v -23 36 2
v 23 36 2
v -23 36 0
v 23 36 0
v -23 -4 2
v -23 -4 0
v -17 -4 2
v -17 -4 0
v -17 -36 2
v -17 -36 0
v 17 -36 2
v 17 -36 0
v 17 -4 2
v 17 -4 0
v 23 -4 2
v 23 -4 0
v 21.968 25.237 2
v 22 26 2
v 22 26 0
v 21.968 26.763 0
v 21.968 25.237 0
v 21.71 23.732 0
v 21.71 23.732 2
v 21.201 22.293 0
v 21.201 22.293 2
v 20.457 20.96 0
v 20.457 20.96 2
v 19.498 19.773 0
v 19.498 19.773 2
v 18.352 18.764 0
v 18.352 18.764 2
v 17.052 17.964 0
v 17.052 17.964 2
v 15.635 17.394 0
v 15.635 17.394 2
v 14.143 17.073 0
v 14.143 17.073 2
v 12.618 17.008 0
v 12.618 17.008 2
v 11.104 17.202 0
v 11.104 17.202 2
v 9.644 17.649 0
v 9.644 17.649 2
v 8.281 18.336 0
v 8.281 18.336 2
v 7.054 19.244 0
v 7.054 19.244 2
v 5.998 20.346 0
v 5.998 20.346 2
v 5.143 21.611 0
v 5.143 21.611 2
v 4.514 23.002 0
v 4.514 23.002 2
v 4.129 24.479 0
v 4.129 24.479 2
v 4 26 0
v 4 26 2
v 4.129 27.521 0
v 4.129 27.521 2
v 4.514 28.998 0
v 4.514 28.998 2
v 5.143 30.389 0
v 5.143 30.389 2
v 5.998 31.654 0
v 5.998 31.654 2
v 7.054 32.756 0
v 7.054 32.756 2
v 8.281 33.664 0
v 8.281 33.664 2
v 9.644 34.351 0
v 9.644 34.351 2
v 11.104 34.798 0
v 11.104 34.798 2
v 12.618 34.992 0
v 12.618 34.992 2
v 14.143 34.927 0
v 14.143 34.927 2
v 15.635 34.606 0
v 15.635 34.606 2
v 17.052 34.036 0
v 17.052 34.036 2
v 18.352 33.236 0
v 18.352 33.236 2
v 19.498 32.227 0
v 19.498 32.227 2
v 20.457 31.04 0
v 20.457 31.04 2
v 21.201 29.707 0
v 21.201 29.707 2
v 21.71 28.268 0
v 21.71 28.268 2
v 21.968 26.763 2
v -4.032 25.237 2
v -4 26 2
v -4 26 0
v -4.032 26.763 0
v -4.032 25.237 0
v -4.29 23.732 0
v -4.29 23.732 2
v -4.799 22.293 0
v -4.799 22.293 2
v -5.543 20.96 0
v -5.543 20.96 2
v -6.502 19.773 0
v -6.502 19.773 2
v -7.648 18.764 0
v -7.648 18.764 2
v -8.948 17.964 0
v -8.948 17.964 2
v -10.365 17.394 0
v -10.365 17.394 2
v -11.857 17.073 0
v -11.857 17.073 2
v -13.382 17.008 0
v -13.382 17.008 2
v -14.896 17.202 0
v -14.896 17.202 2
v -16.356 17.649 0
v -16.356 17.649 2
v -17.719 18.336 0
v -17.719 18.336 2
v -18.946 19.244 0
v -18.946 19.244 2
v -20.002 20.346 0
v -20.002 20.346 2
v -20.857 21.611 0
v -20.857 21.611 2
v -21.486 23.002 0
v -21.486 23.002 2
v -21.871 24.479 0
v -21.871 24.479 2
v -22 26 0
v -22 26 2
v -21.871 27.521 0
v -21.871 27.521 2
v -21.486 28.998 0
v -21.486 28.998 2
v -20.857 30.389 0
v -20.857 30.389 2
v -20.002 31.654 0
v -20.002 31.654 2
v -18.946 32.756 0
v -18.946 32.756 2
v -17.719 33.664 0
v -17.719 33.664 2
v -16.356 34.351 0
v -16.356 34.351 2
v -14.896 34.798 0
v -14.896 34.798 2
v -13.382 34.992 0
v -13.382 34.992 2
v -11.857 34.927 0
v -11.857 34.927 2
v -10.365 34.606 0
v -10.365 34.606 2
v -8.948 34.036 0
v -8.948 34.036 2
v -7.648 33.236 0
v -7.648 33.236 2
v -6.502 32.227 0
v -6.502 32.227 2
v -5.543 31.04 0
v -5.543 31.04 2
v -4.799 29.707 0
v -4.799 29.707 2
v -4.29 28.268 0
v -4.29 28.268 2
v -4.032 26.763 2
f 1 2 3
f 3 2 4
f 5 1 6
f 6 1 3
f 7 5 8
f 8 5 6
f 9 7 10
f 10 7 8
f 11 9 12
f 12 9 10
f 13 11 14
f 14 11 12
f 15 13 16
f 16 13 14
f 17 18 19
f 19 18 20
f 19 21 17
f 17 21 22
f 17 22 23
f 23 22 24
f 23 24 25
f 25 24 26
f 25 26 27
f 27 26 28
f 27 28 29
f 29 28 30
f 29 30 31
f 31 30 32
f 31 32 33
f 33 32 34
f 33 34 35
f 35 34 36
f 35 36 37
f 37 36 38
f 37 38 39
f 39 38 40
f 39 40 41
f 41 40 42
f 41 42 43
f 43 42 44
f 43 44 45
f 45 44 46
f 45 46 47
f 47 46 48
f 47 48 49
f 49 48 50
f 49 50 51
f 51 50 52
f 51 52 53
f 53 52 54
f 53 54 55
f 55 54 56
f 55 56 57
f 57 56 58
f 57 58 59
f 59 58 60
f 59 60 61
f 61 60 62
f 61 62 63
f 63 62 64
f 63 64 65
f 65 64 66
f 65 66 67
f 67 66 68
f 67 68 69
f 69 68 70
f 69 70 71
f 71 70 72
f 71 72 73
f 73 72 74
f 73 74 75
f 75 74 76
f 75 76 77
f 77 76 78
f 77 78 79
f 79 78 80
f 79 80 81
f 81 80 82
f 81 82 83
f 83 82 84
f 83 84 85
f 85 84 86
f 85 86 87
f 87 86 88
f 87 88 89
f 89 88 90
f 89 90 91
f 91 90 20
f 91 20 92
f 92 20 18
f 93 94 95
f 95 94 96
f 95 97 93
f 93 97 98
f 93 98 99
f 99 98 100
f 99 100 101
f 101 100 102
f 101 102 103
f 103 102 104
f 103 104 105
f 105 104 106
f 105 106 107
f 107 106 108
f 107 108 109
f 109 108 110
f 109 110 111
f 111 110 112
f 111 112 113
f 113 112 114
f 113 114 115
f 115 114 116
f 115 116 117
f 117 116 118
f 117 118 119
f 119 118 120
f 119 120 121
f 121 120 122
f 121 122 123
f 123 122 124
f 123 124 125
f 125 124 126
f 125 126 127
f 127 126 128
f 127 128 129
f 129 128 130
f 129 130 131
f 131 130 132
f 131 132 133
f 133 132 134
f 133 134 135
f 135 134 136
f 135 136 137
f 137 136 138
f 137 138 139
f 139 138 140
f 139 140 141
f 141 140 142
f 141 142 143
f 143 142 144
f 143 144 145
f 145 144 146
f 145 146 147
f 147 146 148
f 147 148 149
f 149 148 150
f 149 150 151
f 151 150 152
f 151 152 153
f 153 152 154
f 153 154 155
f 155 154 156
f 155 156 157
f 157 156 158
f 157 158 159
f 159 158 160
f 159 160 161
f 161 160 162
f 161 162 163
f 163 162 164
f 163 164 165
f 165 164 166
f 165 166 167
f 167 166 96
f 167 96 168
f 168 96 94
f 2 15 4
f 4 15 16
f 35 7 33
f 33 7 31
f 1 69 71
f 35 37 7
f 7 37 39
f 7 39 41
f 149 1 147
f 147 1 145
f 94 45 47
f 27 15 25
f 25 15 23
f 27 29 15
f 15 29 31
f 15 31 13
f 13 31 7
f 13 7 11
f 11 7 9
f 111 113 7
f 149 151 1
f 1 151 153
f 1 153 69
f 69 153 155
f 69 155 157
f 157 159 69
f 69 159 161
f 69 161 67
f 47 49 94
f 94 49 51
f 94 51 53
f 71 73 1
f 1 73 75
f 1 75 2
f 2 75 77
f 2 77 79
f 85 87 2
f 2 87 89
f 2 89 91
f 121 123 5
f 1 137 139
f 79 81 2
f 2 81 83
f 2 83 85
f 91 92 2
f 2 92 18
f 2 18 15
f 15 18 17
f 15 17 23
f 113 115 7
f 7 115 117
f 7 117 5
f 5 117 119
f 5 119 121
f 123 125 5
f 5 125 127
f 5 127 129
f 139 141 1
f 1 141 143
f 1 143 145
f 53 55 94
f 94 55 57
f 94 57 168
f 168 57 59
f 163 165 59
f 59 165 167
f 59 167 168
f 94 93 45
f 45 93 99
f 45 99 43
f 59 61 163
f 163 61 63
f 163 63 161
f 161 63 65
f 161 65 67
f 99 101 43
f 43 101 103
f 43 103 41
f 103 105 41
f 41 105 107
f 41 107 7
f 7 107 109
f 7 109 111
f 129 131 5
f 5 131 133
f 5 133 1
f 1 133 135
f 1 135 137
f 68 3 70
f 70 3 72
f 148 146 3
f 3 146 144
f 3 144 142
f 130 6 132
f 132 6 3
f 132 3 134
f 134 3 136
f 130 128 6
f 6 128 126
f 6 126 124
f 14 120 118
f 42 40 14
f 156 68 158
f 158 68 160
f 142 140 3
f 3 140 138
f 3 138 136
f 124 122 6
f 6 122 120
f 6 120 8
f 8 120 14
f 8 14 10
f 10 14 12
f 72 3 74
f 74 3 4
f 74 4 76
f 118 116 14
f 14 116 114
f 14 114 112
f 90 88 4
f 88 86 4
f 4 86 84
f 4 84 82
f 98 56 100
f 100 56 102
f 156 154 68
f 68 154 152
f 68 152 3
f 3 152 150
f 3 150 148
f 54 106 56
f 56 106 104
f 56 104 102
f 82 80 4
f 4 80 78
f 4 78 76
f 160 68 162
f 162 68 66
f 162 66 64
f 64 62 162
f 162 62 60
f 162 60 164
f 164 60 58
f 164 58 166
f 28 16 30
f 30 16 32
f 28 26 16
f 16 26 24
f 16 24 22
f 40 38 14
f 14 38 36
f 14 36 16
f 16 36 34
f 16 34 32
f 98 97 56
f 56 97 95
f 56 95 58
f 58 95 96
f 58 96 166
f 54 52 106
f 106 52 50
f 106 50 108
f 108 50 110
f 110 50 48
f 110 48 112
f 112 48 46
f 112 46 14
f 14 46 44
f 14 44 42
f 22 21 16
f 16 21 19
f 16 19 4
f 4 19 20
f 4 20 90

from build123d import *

# Parameters (mm, degrees)
SKETCH1_R           = 9
BOSS_EXTRUDE1_DEPTH = 2


with BuildPart() as part:
    # Sketch1 → Boss-Extrude1 (new body)
    with BuildSketch(Plane.XY):
        Polygon((-23, -4), (-17, -4), (-17, -36), (17, -36), (17, -4), (23, -4), (23, 36), (-23, 36), align=None)
        with Locations((-13, 26)):
            Circle(SKETCH1_R, mode=Mode.SUBTRACT)
        with Locations((13, 26)):
            Circle(SKETCH1_R, mode=Mode.SUBTRACT)
    extrude(amount=BOSS_EXTRUDE1_DEPTH)


solid = part.part
